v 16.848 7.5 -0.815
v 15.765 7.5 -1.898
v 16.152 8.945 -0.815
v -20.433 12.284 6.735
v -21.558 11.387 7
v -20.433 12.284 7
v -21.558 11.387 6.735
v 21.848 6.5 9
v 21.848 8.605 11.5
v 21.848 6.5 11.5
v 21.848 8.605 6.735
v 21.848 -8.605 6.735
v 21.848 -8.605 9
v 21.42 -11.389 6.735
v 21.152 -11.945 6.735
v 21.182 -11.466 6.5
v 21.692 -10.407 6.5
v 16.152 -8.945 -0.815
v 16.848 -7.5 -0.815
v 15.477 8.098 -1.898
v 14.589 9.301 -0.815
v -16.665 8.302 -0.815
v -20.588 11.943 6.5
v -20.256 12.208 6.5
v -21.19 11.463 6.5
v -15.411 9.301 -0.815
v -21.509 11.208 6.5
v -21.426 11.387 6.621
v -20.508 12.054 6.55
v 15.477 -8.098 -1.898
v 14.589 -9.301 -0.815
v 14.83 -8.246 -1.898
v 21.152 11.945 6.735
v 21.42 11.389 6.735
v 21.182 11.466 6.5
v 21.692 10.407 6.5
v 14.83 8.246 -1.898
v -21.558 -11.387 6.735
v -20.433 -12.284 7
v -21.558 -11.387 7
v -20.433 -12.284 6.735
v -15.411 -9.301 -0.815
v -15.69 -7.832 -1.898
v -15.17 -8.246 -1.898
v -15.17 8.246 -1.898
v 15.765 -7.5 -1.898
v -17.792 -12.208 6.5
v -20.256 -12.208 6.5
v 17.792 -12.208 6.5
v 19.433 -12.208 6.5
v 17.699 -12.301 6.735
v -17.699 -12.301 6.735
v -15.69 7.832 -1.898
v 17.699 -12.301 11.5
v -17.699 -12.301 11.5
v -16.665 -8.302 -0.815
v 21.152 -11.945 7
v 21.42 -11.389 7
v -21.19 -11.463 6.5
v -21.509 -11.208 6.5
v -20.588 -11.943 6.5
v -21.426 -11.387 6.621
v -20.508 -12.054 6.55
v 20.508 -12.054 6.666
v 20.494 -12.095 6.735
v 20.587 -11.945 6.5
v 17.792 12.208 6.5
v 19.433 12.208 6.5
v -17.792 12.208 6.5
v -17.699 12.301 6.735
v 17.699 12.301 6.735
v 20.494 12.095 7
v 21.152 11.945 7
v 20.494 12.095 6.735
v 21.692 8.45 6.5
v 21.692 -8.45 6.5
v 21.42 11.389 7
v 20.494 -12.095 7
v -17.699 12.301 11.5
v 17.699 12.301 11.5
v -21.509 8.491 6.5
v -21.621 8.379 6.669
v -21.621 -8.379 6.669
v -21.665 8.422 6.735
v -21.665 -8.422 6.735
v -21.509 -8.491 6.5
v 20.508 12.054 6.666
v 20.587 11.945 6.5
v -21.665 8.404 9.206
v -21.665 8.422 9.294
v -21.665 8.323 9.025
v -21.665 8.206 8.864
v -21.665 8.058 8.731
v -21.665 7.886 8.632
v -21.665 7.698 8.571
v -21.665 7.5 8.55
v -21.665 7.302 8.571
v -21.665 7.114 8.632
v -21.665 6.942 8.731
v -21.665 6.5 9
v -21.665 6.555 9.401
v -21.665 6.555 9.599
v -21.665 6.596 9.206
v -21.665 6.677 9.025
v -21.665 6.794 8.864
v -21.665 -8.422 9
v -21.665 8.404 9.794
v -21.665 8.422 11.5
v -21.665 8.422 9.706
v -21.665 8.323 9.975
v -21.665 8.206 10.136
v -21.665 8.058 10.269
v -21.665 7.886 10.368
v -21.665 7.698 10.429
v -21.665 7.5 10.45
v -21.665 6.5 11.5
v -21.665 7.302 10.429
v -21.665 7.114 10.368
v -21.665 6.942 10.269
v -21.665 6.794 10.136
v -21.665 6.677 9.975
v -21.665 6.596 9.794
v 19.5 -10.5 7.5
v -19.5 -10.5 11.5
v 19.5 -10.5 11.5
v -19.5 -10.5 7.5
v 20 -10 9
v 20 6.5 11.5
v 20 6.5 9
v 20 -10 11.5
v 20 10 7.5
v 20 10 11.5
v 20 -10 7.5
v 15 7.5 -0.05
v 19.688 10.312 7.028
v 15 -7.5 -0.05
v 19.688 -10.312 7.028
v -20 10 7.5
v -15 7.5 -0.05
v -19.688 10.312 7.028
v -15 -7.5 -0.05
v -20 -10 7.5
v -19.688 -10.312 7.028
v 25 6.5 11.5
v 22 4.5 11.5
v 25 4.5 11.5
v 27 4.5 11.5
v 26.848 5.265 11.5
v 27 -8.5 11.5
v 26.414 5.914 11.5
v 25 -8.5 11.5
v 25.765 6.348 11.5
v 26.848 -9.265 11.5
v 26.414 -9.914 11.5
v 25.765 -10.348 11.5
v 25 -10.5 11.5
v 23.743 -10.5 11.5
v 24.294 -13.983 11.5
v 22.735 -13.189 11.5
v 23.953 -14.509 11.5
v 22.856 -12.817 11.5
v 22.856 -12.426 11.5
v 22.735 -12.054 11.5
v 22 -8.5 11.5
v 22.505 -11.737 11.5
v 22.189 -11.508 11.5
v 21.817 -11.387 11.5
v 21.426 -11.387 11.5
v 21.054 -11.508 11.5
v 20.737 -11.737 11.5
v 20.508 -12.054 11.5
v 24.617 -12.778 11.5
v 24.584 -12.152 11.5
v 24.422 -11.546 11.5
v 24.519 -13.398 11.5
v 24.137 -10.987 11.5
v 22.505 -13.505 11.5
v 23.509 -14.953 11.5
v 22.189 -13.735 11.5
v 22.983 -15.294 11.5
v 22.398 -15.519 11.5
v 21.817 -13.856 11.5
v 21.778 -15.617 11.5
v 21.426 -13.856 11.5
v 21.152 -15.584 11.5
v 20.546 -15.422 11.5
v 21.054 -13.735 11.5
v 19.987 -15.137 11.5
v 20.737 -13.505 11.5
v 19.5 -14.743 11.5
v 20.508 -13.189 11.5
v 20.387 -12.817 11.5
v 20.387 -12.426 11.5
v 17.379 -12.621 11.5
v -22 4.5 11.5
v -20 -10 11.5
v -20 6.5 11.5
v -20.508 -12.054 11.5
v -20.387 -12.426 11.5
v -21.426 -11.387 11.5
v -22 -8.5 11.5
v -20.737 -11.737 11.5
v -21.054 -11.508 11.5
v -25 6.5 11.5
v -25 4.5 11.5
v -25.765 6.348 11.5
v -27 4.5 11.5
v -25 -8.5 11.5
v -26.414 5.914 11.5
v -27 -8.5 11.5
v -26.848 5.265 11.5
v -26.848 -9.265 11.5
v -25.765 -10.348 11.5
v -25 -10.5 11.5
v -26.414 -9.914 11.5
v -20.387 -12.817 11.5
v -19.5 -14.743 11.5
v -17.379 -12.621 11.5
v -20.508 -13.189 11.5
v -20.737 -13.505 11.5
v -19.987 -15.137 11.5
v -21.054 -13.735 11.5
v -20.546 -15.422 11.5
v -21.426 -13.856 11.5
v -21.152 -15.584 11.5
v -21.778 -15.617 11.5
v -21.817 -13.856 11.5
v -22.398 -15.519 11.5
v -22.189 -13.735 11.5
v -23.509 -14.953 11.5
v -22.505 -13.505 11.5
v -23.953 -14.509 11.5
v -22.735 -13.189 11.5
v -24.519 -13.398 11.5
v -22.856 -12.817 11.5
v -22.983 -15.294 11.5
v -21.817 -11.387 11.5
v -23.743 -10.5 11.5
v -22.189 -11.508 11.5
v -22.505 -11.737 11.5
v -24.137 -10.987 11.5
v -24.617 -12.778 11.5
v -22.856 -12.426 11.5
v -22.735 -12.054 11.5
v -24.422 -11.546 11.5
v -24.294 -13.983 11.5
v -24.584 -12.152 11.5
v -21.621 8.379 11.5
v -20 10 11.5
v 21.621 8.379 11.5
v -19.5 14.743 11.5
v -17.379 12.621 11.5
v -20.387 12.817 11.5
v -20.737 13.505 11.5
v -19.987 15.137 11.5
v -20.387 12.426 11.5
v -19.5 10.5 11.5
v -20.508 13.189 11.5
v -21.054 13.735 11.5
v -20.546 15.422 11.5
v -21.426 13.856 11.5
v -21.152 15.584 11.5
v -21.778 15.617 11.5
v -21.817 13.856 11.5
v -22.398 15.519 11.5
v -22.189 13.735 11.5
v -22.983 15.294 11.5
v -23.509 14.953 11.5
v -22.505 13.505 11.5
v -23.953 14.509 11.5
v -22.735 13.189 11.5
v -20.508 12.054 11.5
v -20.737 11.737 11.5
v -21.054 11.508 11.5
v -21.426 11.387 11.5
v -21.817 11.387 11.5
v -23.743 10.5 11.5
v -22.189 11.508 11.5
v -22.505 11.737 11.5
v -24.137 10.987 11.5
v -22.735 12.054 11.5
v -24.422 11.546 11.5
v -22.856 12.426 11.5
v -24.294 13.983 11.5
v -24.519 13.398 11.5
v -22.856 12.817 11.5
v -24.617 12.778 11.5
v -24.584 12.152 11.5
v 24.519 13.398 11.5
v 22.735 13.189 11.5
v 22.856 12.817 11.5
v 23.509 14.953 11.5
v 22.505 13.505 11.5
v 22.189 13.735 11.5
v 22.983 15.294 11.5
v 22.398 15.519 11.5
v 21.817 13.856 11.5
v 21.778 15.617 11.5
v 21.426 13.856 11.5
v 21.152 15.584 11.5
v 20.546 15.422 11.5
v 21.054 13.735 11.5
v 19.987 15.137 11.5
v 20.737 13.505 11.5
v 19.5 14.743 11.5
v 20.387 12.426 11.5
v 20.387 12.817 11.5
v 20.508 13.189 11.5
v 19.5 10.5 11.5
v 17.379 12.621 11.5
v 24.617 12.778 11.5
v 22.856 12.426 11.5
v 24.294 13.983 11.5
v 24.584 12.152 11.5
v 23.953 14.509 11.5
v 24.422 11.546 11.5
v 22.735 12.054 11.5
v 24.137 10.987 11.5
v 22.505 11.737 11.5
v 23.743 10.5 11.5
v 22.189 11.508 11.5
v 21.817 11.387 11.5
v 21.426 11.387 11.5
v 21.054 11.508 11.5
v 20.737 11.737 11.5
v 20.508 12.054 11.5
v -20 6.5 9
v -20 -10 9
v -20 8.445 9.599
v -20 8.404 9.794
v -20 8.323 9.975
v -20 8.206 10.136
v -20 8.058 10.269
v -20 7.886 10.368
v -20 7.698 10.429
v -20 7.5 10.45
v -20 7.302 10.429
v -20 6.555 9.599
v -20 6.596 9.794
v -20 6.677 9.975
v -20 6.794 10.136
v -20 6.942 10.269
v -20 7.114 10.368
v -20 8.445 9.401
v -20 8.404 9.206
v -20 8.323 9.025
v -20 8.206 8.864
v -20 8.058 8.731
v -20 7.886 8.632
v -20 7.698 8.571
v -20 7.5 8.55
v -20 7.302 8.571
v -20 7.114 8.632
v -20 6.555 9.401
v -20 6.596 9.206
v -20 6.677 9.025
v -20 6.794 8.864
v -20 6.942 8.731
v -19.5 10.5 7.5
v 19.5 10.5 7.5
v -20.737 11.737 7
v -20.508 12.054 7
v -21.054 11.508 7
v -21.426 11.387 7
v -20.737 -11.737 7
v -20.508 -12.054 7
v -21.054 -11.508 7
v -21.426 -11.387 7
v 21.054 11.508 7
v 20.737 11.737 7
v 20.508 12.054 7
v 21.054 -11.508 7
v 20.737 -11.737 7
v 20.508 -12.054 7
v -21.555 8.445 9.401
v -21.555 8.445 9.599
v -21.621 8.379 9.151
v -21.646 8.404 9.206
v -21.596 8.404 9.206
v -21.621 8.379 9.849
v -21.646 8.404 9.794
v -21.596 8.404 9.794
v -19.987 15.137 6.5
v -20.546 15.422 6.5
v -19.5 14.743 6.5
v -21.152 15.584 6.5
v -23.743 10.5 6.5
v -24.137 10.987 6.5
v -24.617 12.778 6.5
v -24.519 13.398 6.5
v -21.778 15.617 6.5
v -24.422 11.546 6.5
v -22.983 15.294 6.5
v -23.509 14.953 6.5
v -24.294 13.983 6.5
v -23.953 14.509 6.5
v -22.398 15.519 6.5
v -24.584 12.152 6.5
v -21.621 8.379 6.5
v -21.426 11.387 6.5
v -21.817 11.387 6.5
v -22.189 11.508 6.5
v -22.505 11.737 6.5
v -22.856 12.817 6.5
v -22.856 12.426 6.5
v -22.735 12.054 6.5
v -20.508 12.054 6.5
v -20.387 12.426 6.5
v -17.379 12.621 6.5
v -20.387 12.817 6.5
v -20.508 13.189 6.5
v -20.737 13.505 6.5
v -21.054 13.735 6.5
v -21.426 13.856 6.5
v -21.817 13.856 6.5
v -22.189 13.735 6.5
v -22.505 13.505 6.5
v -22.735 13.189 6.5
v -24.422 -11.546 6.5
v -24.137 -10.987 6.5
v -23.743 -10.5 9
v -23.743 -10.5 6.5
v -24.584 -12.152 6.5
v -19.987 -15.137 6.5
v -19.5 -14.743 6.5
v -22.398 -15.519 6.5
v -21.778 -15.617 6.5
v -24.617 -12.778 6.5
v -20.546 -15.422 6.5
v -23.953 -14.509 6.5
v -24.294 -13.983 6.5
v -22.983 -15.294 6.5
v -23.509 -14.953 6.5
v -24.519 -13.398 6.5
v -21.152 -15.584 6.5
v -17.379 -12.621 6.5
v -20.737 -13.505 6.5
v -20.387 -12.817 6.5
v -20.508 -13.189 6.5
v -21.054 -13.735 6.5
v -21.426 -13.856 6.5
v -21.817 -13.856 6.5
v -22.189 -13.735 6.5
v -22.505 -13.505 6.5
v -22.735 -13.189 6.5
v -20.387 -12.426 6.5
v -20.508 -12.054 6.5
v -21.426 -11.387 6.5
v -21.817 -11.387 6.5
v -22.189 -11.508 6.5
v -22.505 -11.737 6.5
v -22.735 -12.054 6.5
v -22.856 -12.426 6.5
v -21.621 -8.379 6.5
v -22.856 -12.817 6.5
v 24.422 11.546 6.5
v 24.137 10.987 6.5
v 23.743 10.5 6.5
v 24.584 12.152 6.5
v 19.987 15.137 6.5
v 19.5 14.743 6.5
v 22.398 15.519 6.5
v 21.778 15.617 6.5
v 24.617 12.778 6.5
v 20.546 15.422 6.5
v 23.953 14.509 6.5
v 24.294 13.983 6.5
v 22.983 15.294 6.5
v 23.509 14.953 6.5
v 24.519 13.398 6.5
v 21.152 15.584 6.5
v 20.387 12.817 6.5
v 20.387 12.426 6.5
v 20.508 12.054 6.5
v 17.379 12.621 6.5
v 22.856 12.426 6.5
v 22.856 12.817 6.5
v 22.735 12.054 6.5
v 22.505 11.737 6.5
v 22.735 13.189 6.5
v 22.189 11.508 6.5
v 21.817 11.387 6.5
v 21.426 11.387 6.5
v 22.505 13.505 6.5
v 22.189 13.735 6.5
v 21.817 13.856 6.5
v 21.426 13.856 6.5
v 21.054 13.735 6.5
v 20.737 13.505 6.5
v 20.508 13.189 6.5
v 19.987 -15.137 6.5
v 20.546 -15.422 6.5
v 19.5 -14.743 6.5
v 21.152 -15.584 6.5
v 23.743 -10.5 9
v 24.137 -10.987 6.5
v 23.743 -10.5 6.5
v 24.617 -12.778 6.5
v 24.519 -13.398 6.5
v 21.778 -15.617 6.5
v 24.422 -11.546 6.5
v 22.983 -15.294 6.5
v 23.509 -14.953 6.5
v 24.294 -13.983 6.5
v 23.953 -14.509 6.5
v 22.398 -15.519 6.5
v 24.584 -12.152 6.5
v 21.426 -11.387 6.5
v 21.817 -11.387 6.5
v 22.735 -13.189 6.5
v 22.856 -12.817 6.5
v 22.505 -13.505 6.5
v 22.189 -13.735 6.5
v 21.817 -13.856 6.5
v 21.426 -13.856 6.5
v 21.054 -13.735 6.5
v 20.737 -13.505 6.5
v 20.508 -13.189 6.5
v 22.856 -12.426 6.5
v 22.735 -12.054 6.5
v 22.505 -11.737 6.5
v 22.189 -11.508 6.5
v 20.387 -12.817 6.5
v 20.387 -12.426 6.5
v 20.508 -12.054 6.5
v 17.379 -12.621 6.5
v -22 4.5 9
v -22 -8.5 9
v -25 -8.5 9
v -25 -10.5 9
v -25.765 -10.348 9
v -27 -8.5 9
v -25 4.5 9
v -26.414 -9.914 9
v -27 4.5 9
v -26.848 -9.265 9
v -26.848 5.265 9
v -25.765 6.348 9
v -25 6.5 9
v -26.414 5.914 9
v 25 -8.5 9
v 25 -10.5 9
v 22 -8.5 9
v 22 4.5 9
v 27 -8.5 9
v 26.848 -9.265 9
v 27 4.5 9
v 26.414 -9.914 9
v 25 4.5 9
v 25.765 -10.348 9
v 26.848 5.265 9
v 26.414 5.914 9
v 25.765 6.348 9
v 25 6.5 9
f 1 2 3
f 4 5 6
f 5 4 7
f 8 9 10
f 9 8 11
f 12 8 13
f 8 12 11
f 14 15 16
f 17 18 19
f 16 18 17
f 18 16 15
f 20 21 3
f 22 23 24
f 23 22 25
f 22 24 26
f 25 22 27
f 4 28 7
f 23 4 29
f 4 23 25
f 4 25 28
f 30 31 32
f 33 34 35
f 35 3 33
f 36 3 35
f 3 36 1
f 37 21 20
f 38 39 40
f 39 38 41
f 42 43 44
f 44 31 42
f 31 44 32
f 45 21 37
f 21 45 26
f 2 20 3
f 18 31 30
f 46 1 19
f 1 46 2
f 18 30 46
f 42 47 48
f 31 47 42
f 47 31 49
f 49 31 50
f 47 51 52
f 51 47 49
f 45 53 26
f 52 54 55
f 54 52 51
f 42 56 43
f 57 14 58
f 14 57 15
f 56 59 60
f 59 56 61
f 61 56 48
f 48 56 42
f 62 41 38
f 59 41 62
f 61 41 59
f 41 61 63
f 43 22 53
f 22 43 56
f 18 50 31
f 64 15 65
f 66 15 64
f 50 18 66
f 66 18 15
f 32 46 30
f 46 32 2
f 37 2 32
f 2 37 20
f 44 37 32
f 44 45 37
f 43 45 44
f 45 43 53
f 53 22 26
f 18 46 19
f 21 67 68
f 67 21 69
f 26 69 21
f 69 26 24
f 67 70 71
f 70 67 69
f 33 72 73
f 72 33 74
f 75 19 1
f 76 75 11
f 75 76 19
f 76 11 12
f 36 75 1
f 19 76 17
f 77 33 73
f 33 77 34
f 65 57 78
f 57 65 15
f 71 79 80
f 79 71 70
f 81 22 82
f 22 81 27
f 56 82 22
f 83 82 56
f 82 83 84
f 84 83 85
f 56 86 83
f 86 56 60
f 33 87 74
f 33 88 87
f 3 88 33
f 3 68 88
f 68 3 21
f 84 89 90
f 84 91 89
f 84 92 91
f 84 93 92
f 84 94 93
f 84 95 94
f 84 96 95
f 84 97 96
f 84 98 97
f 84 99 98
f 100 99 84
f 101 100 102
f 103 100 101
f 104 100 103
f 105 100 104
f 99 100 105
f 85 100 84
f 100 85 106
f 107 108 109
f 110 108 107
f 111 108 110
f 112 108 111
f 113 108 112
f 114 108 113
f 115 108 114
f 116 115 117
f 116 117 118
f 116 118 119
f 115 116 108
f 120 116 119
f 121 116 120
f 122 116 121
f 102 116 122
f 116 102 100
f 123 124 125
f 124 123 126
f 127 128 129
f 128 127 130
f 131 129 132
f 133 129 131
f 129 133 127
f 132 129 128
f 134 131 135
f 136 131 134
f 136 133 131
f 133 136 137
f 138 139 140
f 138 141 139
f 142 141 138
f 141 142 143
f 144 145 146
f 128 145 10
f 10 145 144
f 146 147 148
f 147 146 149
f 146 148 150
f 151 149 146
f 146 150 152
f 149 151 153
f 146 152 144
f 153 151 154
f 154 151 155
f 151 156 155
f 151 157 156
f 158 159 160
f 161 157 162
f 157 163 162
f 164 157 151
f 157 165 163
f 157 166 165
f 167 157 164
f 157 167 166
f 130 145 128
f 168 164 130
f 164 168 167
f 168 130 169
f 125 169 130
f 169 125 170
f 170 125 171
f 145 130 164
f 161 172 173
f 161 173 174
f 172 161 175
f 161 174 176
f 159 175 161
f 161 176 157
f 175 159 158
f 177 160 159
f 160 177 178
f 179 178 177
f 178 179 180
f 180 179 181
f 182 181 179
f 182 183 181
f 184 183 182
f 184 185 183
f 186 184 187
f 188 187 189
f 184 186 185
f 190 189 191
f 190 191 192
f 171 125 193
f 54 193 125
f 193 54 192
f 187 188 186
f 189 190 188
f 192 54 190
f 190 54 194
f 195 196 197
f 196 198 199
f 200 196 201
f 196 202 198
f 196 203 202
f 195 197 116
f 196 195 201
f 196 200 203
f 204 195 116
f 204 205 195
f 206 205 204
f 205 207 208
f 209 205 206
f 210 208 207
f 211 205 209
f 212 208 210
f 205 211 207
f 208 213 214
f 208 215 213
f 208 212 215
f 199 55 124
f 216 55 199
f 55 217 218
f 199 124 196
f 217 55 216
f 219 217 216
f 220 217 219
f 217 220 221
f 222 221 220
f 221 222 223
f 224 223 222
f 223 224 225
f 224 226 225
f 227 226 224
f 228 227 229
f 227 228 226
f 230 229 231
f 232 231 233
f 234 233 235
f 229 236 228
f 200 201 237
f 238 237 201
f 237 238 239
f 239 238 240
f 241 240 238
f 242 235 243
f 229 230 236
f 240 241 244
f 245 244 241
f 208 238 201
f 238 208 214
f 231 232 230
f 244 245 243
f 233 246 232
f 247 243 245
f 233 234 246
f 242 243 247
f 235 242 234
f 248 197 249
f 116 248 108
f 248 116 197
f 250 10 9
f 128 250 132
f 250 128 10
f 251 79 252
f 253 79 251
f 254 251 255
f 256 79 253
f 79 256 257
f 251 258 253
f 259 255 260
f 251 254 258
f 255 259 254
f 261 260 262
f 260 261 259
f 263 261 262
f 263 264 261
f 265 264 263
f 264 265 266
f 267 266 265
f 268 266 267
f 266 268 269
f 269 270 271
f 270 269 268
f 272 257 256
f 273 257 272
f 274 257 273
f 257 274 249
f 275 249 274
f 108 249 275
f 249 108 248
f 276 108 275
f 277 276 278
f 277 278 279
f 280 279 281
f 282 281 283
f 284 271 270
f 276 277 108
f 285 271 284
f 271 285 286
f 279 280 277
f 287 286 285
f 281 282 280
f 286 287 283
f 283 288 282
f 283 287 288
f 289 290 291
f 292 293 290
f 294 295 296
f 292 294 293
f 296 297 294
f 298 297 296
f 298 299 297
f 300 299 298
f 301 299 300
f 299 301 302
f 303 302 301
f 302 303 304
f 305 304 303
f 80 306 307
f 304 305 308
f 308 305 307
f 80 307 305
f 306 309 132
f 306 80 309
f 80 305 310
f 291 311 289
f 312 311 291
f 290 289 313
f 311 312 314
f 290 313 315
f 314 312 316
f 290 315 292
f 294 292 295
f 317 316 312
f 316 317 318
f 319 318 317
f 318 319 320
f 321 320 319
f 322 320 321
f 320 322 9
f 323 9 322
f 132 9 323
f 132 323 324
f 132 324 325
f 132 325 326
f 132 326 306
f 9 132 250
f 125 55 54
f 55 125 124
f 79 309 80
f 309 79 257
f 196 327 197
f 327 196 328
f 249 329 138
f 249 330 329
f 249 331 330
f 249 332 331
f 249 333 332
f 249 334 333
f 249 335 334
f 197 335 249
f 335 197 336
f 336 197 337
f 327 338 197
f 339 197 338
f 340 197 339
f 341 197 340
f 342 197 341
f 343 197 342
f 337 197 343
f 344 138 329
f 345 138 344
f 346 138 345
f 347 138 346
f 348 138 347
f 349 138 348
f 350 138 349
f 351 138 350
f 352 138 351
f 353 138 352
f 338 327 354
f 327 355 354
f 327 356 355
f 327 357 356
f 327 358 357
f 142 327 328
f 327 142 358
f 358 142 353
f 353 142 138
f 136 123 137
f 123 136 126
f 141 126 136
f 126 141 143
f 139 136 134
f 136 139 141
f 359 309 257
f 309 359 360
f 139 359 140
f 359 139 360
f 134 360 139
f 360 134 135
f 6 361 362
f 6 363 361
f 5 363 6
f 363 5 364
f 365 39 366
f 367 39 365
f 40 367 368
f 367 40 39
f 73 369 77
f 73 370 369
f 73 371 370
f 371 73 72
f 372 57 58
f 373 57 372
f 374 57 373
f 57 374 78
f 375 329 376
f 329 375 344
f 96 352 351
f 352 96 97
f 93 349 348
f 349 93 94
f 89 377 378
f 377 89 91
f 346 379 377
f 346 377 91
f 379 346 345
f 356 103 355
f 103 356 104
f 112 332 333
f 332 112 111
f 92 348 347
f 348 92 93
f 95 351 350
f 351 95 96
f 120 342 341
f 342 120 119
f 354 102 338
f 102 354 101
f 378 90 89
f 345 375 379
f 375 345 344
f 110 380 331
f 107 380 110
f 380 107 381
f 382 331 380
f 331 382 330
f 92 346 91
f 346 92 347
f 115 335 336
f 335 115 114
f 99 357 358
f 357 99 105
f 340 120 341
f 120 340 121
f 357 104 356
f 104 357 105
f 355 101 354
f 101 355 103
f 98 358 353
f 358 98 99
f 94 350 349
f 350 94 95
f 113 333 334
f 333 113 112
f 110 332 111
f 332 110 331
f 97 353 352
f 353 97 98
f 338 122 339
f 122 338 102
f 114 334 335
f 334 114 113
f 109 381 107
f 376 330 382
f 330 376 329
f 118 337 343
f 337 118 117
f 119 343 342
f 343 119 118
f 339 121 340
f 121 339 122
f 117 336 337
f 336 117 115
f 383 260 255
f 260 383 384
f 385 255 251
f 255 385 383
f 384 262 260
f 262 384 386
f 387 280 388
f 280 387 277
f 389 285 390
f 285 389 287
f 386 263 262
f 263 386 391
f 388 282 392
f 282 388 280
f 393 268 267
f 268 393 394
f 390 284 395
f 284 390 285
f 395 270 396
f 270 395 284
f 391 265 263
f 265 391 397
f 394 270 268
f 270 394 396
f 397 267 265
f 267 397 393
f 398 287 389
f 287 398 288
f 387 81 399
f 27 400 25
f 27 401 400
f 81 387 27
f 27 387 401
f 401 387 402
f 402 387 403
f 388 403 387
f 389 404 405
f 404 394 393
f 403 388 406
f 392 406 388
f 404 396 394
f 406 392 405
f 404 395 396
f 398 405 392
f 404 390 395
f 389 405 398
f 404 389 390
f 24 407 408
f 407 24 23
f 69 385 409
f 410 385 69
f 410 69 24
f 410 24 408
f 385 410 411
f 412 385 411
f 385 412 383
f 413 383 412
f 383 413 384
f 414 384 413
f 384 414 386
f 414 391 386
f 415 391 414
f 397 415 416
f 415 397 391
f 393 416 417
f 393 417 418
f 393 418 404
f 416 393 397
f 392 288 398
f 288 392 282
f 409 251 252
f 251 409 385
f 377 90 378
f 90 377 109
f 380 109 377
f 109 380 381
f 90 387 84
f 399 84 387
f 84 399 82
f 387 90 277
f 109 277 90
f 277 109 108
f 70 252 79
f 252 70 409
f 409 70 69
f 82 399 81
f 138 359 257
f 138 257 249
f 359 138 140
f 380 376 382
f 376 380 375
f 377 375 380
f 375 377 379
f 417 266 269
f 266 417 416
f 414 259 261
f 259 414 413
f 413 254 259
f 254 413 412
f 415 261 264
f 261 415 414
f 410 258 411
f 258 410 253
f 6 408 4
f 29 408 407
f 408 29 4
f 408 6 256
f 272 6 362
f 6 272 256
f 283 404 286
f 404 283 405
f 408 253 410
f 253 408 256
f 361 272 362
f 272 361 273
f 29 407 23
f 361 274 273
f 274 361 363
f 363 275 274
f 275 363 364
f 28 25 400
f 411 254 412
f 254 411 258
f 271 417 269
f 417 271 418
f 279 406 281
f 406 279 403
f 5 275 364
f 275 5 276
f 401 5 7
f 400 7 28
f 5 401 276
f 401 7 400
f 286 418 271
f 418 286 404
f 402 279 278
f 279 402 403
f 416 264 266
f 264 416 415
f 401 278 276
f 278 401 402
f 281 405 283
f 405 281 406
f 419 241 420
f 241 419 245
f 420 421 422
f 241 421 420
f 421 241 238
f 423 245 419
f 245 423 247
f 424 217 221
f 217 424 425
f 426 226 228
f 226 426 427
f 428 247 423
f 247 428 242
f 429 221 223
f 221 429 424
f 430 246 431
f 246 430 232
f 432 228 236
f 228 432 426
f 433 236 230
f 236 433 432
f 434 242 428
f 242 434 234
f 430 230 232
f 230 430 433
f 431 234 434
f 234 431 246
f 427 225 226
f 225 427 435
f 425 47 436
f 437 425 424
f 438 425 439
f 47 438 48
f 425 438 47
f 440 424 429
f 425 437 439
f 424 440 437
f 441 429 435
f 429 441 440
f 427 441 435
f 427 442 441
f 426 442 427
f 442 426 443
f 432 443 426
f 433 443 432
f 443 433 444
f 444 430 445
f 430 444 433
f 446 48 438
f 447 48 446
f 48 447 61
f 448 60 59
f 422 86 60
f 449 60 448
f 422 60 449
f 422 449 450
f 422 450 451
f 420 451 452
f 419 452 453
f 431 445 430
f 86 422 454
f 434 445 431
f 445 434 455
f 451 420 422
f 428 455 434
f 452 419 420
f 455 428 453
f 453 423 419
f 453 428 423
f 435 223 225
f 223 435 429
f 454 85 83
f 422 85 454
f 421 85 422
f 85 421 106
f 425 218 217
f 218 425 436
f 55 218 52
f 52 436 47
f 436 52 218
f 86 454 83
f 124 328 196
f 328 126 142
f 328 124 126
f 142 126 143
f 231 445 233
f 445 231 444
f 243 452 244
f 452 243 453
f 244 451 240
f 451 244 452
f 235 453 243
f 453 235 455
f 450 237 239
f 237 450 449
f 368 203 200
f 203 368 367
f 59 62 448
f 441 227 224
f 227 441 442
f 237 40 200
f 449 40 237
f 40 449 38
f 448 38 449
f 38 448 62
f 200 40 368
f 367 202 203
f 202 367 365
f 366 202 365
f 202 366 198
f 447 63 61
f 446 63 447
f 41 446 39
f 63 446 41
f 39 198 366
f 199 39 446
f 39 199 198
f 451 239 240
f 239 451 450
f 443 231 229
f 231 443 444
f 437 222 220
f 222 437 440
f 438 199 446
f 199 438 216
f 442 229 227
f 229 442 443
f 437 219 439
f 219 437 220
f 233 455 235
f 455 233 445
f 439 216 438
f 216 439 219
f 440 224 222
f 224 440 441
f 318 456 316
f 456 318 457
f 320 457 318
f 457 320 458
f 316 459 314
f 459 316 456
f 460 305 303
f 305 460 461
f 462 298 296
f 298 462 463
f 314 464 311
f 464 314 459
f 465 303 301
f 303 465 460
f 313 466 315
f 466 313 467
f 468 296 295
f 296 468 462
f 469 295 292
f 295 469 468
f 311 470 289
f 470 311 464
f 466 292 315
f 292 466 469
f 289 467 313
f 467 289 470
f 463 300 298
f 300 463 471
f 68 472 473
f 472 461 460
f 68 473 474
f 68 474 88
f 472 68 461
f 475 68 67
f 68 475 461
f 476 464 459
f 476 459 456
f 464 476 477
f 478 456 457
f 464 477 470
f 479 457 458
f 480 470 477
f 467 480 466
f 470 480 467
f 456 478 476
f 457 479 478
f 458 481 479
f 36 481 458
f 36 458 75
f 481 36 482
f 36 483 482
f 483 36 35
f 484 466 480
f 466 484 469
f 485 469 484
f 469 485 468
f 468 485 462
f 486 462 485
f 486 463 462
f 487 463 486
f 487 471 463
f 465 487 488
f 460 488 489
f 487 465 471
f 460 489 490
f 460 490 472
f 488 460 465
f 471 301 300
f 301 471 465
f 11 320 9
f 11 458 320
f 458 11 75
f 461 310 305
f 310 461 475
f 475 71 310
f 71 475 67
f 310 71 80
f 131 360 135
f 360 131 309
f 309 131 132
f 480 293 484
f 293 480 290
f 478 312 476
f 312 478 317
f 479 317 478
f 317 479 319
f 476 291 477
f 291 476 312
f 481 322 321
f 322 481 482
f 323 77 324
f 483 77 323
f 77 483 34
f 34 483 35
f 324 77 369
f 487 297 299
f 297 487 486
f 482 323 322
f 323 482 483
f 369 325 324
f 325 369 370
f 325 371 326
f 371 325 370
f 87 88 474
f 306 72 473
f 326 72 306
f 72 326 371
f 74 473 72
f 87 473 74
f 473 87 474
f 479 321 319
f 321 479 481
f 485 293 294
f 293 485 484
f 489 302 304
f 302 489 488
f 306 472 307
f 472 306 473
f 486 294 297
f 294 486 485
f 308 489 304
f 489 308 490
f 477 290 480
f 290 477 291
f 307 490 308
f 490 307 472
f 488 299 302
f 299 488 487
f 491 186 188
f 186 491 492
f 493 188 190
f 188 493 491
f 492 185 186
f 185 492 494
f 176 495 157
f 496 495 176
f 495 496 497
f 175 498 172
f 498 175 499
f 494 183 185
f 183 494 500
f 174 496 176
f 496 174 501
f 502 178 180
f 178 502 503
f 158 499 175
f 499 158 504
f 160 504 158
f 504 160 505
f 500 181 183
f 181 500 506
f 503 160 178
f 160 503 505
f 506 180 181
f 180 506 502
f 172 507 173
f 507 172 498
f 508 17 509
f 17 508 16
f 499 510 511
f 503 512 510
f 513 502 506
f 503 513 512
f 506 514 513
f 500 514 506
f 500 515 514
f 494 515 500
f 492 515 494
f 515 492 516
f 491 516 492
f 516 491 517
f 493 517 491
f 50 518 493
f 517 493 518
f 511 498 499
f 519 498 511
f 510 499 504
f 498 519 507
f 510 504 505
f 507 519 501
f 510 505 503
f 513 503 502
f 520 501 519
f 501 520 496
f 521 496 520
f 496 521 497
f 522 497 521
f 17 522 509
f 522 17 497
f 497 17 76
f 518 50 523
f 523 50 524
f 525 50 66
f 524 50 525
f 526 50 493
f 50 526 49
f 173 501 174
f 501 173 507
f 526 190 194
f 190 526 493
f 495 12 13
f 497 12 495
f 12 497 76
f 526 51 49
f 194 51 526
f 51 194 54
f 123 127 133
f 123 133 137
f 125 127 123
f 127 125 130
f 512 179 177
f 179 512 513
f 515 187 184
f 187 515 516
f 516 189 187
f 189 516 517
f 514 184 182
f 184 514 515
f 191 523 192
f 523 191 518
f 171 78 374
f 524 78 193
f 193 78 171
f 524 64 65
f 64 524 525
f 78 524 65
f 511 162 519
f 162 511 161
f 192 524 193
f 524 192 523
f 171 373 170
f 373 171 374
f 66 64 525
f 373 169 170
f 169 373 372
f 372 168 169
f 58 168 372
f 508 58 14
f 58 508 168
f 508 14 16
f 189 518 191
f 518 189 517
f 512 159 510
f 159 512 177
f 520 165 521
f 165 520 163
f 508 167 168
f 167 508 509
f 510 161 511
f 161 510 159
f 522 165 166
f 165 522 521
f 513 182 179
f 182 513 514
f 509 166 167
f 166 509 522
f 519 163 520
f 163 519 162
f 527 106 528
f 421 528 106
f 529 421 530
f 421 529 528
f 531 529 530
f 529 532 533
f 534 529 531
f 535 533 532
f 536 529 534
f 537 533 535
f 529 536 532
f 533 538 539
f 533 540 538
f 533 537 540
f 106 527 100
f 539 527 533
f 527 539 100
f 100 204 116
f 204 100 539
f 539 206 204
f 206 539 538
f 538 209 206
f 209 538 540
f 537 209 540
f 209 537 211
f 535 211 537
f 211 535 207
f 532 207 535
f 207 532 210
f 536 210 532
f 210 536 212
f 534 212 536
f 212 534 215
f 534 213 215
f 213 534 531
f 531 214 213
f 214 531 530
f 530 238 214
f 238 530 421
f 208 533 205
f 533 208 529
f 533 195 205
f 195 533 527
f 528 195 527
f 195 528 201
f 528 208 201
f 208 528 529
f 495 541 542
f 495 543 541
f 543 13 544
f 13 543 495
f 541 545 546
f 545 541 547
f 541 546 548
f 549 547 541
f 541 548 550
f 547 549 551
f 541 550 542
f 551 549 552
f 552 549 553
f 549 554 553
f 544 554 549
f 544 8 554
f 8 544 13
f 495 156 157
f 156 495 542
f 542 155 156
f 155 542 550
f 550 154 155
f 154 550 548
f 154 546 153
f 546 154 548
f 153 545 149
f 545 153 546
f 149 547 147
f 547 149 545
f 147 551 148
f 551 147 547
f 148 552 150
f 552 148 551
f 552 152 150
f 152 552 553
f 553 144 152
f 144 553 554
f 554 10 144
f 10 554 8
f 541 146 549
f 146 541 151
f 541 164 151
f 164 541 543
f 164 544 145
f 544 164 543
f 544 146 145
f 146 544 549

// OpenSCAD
thickness = 2;

case();
//lid();

module lid() {
  difference() {
    translate([0, 0, thickness/2]) cube([40 + 2*thickness, 21 + 2*thickness, thickness], center=true);
      
     // clearance for the screw ears.
    translate([-21.25, 12.25, 0]) cylinder(d = 3, h = thickness, $fn = 10);
    translate([-21.25, -12.25, 0]) cylinder(d = 3, h = thickness, $fn = 10);
    translate([21.25, 12.25, 0]) cylinder(d = 3, h = thickness, $fn = 10);
    translate([21.25, -12.25, 0]) cylinder(d = 3, h = thickness, $fn = 10);
  }
 
  // Screw ears
  translate([-19.5, 10.5, 0]) rotate(a = [0, 0, 45]) screw_ear(height = thickness, diameter = 3.5);
  translate([-19.5, -10.5, 0]) rotate(a = [0, 0, 135]) screw_ear(height = thickness, diameter = 3.5);
  translate([19.5, 10.5, 0]) rotate(a = [0, 0, -45]) screw_ear(height = thickness, diameter = 3.5);
  translate([19.5, -10.5, 0]) rotate(a = [0, 0, -135]) screw_ear(height = thickness, diameter = 3.5);
}

module case() {
  difference() {
    union() {
      minkowski() {
        union() {
          inner();
          translate([0, 0, 7.5 + (4+thickness)/2])        cube([40, 21, 4 + thickness], center = true);
        }
        sphere(r =  thickness);
      }
    }
  
    inner();
  
    // slice the top off clean.
    translate([0, 0, 7.5 + 2 * thickness + (11/2)]) cube([50, 50, 11], center = true);

    // clearance for the screw ears.
    translate([-21.25, 12.25, 7]) cylinder(d = 3, h = 5, $fn = 10);
    translate([-21.25, -12.25, 7]) cylinder(d = 3, h = 5, $fn = 10);
    translate([21.25, 12.25, 7]) cylinder(d = 3, h = 5, $fn = 10);
    translate([21.25, -12.25, 7]) cylinder(d = 3, h = 5, $fn = 10);
  
    // The antenna hole.
    translate([-21.75, 7.5, 9.5])rotate(a = [0, 90, 0]) cylinder(d = 1.9, h = thickness, $fn = 30);
  }

  // Screw ears
  translate([-19.5, 10.5, 6.5]) rotate(a = [0, 0, 45]) screw_ear();
  translate([-19.5, -10.5, 6.5]) rotate(a = [0, 0, 135]) screw_ear();
  translate([19.5, 10.5, 6.5]) rotate(a = [0, 0, -45]) screw_ear();
  translate([19.5, -10.5, 6.5]) rotate(a = [0, 0, -135]) screw_ear();

  translate([-23.5, -2, 9]) collar_ring(height=2.5);
  translate([23.5, -2, 9]) rotate(a = [0, 0, 180]) collar_ring(height=2.5);
}

module inner() {
  hull() {
    cube([30, 15, 0.1], center = true);
    translate([0, 0, 7.5 + 4/2]) cube([40, 21, 4], center = true);
  }
}

module screw_ear(height = 5, diameter = 2.5) {
    difference() {
      union() {
        translate([0, 6/2, 0]) cylinder(d = 6, h = height, $fn=30);
        translate([-6/2, 0, 0]) cube([6, 6/2, height]);
      }
      
      translate([0, 6/2, 0]) cylinder(d = diameter, h = height, $fn = 20);
    }
}

module collar_ring(height = 5) {
  linear_extrude(height = height) difference() {
    union() {
      minkowski() {
        square([3, 13], center=true);
        circle(r = thickness, $fn = 16);
      }
      translate([0, -(13 + 2*thickness)/2, 0]) square([3/2 + thickness, 13 + 2*thickness]);
    }
    square([3, 13], center=true);
  }
}
